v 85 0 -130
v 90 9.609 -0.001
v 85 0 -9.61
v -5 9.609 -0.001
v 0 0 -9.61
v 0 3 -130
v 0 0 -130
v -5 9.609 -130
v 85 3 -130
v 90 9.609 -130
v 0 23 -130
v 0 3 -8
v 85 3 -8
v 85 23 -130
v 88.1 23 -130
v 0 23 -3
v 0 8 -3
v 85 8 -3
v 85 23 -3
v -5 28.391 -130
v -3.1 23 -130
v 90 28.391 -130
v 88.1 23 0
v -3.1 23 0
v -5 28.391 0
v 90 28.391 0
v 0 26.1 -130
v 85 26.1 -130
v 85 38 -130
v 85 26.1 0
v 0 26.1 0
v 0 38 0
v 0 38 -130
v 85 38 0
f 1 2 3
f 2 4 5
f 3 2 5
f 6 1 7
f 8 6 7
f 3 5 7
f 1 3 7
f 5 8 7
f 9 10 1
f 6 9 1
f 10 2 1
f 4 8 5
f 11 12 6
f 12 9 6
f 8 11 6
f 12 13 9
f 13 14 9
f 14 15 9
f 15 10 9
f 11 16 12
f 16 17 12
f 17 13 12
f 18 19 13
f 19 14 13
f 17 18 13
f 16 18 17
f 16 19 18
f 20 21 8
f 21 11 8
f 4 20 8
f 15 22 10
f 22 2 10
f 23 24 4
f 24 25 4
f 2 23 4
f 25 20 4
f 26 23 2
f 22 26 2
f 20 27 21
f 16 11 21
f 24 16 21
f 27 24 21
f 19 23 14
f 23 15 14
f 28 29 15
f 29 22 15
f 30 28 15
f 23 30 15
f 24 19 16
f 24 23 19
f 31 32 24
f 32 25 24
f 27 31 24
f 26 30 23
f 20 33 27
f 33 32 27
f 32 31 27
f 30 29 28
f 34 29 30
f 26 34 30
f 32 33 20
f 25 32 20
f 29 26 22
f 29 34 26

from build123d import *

# Parameters (mm, degrees)
SKETCH1_W                           = 85
SKETCH1_H                           = 130
BOSS_EXTRUDE1_BASE_DEPTH            = 3
BOSS_EXTRUDE4_SIDE_WALLS_DEPTH      = 130
CUT_EXTRUDE2_GUIDE_HOLES_DEPTH      = 163.616112363
SKETCH15_W                          = 85
SKETCH15_H                          = 20
BOSS_EXTRUDE9_FRONT_WALL_DEPTH      = 3
CHAMFER5_FRONT_CHAMFER_SIZE         = 9.61
CHAMFER6_FRONT_CHAMFER_CLEANUP_SIZE = 5


with BuildPart() as part:
    # Sketch1 → Boss-Extrude1 (Base) (new body)
    with BuildSketch(Plane(origin=(0, 0, 0), x_dir=(1, 0, 0), z_dir=(0, 1, 0))):
        with Locations((42.5, 65)):
            Rectangle(SKETCH1_W, SKETCH1_H)
    extrude(amount=BOSS_EXTRUDE1_BASE_DEPTH)

    # Sketch5 → Boss-Extrude4 (Side Walls) (add, through all)
    with BuildSketch(Plane.XY):
        Polygon((-5, 28.390936655), (0, 38), (0, 0), (-5, 9.609063345), align=None)
        Polygon((90, 9.609063345), (90, 28.390936655), (85, 38), (85, 0), align=None)
    extrude(amount=-BOSS_EXTRUDE4_SIDE_WALLS_DEPTH)

    # Sketch4 → Cut-Extrude2 (Guide Holes) (cut, through all)
    with BuildSketch(Plane.XY):
        Polygon((-3.1, 23), (0, 26.1), (0, 23), align=None)
        Polygon((85, 23), (88.1, 23), (85, 26.1), align=None)
    extrude(amount=-CUT_EXTRUDE2_GUIDE_HOLES_DEPTH, mode=Mode.SUBTRACT)

    # Sketch15 → Boss-Extrude9 (Front Wall) (add)
    with BuildSketch(Plane.XY):
        with Locations((42.5, 13)):
            Rectangle(SKETCH15_W, SKETCH15_H)
    extrude(amount=-BOSS_EXTRUDE9_FRONT_WALL_DEPTH)

    # Chamfer5 (Front Chamfer)
    chamfer5_front_chamfer_edges = [part.edges().sort_by_distance(p)[0] for p in [
        (42.5, 0, 0),
    ]]
    chamfer(chamfer5_front_chamfer_edges, length=CHAMFER5_FRONT_CHAMFER_SIZE)

    # Chamfer6 (Front Chamfer Cleanup)
    chamfer6_front_chamfer_cleanup_edges = [part.edges().sort_by_distance(p)[0] for p in [
        (42.5, 3, -3),
    ]]
    chamfer(chamfer6_front_chamfer_cleanup_edges, length=CHAMFER6_FRONT_CHAMFER_CLEANUP_SIZE)


solid = part.part
